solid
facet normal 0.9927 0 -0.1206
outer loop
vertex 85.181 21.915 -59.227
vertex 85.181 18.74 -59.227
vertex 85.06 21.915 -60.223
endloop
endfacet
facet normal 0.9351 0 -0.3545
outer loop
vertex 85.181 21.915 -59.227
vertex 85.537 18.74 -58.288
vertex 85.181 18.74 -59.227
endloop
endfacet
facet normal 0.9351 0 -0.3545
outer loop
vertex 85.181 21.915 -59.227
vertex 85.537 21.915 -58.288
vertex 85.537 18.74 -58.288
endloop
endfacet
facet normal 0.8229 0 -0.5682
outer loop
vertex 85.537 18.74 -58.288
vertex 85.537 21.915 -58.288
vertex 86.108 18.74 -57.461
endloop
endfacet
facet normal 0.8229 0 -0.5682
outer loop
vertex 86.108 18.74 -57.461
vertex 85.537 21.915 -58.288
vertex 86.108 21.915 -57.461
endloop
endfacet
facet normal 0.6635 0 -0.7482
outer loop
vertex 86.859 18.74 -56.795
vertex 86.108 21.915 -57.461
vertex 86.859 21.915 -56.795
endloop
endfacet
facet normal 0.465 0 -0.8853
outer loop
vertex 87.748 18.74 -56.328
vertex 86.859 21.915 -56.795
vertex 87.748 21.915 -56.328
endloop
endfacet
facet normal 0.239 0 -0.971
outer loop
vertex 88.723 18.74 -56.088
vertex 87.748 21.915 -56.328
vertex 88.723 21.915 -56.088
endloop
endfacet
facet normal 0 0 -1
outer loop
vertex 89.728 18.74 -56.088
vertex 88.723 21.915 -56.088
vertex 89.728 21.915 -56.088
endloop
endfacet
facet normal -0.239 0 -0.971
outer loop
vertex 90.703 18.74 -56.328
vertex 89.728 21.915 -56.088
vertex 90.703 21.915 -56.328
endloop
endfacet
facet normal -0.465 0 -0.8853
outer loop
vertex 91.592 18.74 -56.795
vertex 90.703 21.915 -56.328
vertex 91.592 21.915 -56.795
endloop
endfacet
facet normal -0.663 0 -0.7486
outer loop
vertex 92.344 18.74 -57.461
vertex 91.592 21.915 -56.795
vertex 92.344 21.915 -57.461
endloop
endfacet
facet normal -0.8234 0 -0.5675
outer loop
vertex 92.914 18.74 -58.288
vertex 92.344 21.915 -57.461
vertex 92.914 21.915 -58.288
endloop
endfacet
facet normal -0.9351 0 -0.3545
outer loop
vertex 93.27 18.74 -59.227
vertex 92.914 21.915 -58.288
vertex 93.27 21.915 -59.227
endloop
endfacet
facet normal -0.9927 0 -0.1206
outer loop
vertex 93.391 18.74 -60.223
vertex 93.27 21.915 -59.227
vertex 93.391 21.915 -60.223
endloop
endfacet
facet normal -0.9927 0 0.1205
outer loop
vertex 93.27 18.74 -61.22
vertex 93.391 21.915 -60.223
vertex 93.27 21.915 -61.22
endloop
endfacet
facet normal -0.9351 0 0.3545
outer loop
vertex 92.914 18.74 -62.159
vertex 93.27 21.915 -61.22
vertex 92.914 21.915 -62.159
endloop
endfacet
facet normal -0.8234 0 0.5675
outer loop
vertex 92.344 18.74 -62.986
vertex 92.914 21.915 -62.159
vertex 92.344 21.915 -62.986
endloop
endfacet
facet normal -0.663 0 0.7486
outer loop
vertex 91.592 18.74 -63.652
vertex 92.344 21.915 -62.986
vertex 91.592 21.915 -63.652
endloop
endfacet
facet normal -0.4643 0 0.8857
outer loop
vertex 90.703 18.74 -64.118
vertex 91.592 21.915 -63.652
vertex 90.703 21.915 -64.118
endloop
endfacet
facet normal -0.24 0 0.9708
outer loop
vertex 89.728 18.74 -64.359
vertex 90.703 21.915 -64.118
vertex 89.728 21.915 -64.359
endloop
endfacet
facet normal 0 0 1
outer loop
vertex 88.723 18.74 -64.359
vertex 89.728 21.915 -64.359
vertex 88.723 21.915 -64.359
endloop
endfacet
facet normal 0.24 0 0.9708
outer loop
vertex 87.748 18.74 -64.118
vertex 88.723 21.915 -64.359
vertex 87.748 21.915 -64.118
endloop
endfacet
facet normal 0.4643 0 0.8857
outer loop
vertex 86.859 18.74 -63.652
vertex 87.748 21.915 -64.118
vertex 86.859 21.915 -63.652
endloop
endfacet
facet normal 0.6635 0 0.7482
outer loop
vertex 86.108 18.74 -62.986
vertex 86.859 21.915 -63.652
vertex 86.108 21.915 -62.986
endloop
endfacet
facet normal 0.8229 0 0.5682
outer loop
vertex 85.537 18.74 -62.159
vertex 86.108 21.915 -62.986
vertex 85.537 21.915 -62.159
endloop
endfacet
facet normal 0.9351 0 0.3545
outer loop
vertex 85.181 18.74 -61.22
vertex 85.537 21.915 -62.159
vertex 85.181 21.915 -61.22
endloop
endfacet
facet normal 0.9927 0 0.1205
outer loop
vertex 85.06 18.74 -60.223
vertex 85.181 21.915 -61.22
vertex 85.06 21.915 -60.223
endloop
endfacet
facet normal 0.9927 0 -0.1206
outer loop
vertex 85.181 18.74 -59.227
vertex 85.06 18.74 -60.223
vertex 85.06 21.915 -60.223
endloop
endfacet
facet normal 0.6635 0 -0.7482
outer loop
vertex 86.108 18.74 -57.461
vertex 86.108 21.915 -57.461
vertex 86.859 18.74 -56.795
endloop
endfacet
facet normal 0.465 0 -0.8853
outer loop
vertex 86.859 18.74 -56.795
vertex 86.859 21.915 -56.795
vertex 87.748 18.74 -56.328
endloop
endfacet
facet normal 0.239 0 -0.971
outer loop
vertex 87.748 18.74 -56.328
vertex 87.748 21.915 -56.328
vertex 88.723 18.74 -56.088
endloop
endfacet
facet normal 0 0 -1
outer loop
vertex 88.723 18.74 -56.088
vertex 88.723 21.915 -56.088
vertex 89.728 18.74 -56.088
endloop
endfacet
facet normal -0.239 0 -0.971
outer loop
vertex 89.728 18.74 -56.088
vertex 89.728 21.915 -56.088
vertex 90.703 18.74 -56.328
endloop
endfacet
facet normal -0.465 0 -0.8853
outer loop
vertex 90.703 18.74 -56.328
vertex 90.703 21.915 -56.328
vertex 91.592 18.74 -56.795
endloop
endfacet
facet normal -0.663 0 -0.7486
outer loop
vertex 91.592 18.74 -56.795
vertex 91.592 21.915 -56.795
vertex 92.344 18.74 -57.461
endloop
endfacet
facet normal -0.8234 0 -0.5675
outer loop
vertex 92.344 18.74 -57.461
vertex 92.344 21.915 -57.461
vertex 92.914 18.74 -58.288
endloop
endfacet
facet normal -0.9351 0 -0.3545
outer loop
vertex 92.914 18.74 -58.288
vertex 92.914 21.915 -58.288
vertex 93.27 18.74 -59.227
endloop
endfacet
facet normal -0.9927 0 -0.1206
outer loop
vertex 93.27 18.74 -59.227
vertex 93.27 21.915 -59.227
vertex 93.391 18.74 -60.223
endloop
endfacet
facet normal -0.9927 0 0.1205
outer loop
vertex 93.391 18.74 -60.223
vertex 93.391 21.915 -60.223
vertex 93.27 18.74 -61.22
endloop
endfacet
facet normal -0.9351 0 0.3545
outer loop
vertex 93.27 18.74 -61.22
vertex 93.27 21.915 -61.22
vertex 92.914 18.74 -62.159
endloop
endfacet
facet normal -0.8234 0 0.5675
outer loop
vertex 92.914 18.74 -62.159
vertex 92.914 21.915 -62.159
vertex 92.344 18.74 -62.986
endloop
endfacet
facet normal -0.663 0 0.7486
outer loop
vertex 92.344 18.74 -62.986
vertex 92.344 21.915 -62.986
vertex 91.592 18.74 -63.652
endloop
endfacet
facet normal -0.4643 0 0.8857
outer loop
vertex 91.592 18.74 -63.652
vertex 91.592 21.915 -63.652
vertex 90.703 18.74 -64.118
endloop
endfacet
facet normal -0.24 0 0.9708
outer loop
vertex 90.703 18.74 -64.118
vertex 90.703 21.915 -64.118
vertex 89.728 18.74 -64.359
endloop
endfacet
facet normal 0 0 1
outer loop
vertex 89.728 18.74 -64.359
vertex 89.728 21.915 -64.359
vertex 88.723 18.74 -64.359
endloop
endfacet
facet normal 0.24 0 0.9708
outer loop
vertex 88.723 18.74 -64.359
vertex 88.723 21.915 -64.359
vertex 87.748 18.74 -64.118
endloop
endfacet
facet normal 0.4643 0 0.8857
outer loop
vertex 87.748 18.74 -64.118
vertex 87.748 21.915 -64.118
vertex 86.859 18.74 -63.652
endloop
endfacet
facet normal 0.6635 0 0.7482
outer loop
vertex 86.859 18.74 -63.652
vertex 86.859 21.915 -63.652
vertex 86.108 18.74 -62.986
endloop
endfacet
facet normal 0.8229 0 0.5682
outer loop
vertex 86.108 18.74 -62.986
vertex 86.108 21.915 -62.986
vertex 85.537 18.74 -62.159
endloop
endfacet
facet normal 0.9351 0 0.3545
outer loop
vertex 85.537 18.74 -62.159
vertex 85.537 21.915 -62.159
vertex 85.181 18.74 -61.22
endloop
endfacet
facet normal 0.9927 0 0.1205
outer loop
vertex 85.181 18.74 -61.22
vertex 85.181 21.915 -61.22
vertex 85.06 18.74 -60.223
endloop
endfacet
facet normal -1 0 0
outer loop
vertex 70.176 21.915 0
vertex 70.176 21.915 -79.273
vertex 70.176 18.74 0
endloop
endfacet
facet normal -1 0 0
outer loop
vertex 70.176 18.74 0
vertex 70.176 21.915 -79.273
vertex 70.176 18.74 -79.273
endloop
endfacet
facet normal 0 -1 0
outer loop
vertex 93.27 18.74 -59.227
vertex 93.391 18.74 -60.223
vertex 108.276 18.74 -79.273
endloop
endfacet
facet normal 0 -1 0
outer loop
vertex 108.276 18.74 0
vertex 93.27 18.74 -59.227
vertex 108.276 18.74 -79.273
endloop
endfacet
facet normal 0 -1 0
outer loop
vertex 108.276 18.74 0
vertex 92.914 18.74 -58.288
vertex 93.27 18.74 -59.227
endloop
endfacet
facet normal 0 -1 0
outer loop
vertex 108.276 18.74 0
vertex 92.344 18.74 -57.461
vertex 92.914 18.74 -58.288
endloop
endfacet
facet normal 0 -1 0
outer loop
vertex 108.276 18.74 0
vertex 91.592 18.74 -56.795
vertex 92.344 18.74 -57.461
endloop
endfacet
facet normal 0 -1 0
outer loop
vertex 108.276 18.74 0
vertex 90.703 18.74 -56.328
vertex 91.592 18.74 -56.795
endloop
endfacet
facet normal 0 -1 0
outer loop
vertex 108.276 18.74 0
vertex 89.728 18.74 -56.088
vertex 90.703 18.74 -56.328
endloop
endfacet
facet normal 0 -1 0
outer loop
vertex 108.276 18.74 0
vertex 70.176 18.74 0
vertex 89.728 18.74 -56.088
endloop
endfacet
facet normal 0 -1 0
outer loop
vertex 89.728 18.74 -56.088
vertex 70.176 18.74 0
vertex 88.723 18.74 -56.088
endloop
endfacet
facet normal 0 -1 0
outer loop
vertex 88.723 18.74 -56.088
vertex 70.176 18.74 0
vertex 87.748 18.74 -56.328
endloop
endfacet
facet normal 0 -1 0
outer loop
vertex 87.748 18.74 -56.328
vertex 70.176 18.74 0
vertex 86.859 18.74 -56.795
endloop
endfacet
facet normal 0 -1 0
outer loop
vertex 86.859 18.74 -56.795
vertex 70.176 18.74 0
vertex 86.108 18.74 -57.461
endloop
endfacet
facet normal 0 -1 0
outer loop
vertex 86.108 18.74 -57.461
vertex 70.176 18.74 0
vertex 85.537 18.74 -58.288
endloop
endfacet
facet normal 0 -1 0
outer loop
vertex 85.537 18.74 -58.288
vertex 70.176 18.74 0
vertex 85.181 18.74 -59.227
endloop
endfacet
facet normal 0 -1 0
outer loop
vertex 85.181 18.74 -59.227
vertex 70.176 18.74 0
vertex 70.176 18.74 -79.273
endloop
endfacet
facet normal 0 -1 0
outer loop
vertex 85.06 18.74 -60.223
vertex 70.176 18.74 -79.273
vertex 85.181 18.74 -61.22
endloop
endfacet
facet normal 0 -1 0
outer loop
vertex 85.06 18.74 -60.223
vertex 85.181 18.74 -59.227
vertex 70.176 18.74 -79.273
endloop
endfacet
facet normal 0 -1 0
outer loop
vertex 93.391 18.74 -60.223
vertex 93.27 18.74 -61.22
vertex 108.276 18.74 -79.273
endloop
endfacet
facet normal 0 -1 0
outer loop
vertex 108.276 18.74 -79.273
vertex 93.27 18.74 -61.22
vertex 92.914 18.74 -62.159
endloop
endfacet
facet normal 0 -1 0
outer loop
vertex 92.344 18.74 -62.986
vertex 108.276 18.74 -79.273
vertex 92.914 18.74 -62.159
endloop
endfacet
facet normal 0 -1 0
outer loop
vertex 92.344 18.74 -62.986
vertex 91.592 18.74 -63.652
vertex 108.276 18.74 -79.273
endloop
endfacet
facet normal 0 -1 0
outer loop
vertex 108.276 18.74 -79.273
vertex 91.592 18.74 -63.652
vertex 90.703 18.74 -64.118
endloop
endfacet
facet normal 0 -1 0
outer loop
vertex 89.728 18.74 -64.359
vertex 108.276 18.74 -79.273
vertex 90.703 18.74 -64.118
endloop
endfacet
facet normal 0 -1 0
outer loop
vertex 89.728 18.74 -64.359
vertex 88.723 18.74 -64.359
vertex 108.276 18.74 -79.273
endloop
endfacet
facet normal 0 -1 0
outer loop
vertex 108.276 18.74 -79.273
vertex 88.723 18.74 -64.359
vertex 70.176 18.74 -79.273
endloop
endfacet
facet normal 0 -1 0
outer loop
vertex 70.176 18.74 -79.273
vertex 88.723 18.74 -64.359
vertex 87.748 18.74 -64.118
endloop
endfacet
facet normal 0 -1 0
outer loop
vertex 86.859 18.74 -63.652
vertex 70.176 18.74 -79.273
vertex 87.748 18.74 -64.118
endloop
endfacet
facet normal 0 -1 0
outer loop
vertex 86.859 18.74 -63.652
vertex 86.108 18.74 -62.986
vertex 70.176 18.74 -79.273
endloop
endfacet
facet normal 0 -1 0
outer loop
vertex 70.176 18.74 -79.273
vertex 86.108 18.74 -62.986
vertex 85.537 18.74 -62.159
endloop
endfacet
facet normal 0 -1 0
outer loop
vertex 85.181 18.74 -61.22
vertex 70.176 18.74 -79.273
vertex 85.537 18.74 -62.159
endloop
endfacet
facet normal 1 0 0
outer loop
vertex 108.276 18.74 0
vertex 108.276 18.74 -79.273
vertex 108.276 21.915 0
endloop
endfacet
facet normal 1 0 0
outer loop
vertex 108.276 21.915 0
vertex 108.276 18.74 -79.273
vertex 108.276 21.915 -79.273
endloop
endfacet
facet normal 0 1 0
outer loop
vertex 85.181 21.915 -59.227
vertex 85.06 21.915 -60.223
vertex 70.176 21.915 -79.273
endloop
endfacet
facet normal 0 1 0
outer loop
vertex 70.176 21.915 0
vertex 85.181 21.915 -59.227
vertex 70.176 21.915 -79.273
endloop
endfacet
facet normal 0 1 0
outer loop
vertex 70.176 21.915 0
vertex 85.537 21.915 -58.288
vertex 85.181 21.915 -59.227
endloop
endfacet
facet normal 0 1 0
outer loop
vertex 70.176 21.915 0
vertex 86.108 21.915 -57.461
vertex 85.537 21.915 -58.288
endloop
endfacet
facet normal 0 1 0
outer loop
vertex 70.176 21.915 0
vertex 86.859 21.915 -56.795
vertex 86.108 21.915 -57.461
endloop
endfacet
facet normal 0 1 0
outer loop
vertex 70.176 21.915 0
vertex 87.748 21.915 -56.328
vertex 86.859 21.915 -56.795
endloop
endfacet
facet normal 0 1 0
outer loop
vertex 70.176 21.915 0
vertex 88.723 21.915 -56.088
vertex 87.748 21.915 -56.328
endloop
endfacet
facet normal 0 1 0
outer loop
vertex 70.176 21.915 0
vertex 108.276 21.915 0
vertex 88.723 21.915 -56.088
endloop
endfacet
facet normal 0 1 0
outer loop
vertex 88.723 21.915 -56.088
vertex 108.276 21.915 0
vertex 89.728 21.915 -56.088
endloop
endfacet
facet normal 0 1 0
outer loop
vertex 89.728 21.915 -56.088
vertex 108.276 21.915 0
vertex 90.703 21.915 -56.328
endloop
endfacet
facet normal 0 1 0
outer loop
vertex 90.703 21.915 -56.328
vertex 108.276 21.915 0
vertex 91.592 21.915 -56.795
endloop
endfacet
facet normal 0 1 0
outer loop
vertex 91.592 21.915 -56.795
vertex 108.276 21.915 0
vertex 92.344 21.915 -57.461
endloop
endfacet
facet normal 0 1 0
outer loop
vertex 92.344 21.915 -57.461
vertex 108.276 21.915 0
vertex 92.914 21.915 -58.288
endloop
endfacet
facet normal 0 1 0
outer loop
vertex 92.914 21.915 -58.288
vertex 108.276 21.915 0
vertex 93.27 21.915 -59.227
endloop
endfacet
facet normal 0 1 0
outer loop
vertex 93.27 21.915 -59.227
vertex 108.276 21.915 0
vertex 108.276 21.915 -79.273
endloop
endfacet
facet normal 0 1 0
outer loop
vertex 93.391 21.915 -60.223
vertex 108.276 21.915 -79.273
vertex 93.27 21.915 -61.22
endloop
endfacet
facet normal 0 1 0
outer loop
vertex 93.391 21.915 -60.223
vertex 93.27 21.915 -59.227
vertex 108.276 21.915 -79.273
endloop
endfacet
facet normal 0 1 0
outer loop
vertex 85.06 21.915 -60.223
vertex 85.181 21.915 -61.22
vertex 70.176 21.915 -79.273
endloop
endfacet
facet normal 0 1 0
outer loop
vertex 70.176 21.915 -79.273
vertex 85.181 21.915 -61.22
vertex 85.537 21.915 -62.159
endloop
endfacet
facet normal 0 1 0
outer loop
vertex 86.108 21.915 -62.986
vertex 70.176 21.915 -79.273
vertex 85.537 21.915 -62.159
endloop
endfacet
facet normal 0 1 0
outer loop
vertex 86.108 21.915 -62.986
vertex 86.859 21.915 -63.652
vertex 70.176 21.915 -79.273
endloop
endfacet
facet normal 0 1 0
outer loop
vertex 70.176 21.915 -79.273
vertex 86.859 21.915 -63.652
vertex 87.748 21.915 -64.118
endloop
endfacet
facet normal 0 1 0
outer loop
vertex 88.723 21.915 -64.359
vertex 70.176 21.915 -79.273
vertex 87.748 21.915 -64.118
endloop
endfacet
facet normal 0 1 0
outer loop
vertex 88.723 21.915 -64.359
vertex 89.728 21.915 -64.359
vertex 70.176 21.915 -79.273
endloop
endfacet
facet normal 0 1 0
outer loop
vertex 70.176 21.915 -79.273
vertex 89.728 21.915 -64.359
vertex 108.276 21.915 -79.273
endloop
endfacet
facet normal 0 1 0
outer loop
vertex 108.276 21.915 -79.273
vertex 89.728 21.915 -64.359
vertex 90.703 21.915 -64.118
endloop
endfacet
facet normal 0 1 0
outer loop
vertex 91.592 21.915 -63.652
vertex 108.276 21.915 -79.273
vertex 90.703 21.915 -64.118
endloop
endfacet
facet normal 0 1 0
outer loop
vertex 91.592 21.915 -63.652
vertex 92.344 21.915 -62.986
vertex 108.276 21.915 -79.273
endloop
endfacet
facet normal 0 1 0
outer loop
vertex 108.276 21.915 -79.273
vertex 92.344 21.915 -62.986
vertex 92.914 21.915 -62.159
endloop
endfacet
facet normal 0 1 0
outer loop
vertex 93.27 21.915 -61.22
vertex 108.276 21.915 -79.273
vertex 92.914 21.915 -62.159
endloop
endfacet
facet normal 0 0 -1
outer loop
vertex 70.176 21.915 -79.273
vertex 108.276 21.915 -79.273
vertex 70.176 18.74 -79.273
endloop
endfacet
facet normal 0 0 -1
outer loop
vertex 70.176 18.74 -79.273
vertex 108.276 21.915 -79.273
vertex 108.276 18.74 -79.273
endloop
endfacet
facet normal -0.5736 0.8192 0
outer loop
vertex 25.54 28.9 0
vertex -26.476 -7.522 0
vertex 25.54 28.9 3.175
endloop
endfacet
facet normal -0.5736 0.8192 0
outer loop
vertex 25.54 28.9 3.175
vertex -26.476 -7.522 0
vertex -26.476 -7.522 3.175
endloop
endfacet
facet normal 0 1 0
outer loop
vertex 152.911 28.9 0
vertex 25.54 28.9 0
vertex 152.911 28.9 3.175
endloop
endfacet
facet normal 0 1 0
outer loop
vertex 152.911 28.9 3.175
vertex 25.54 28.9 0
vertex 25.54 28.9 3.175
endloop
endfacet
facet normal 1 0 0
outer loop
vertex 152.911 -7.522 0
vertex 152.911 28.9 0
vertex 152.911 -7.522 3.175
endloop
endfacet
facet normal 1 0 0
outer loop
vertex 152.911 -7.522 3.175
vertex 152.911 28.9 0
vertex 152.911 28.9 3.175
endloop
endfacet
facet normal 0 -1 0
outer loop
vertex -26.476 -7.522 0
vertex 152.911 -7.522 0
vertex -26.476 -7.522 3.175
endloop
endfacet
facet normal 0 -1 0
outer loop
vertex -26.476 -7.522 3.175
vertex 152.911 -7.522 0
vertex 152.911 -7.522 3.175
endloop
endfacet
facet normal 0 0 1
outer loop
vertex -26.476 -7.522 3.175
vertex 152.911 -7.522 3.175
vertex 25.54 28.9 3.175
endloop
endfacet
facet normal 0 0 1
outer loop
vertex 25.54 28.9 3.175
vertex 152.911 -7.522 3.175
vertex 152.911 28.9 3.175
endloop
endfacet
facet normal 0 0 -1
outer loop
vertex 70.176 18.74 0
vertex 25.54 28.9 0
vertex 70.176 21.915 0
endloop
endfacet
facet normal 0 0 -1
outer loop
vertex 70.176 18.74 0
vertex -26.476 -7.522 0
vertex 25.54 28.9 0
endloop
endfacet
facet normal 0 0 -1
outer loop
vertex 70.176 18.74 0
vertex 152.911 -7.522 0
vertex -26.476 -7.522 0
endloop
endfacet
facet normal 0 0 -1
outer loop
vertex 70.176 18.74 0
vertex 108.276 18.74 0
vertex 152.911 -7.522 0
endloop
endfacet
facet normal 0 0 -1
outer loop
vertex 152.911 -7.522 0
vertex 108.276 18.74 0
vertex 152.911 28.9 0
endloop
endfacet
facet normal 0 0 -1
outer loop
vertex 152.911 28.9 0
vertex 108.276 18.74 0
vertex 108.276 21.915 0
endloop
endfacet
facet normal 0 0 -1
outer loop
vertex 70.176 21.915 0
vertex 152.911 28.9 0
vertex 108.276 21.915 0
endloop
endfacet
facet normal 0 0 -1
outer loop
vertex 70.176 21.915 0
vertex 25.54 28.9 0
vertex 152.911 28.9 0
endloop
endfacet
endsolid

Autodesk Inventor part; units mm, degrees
ref_plane "YZ Plane" through (0, 0, 0) normal (1, 0, 0) x (0, 1, 0)
ref_plane "XZ Plane" through (0, 0, 0) normal (0, 1, 0) x (-1, 0, 0)
ref_plane "XY Plane" through (0, 0, 0) normal (0, 0, 1) x (1, 0, 0)
sketch "Sketch1" plane through (0, 0, 0) normal (0, 0, 1) x (1, 0, 0)
  line L0 (-26.4763, -7.5222) -> (152.9112, -7.5222)
  line L1 (-26.4763, -7.5222) -> (25.5399, 28.8999)
  line L2 (-26.4763, -7.5222) -> (37.0237, -7.5222) construction
  line L3 (25.5399, 28.8999) -> (152.9112, 28.8999)
  line L4 (152.9112, 28.8999) -> (152.9112, -7.5222)
  point P0 (0, 0)
  dimension "d0" = 179.3875
  dimension "d2" = 63.5
  dimension "d3" = 35
extrude "Extrusion1" add sketch "Sketch1" along normal blind 3.175
sketch "Sketch2" plane through (0, 0, 0) normal (0, 0, -1) x (-1, 0, 0)
  line L0 (-152.9112, -7.5222) -> (-152.9112, 28.8999) projected
  line L1 (-152.9112, 28.8999) -> (-25.5399, 28.8999)
  line L2 (-89.2255, 21.9149) -> (-70.1755, 21.9149)
  line L3 (-70.1755, 21.9149) -> (-70.1755, 18.7399)
  line L4 (-70.1755, 18.7399) -> (-108.2755, 18.7399)
  line L5 (-108.2755, 18.7399) -> (-108.2755, 21.9149)
  line L6 (-108.2755, 21.9149) -> (-89.2255, 21.9149)
  point P0 (0, 0)
  dimension "d7" = 19.05
  dimension "d8" = 3.175
  dimension "d9" = 38.1
  dimension "d10" = 3.175
extrude "Extrusion2" add sketch "Sketch2" along normal blind 79.2734
sketch "Sketch3" plane through (70.1755, 18.7399, 0) normal (0, -1, 0) x (1, 0, 0)
  line L0 (0, -79.2734) -> (19.05, -79.2734)
  line L1 (19.05, -79.2734) -> (19.05, -60.2234)
  line L2 (19.05, -60.2234) -> (0, -60.2234)
  line L3 (0, -60.2234) -> (0, -79.2734)
  point P0 (-70.1755, 0)
  dimension "d13" = 19.05
  dimension "d14" = 19.05
hole "Hole1" at (89.2255, 18.7399, -60.2234) direction (0, 1, 0) diameter 8.3312 end through all
properties part number "Left Forearm"
